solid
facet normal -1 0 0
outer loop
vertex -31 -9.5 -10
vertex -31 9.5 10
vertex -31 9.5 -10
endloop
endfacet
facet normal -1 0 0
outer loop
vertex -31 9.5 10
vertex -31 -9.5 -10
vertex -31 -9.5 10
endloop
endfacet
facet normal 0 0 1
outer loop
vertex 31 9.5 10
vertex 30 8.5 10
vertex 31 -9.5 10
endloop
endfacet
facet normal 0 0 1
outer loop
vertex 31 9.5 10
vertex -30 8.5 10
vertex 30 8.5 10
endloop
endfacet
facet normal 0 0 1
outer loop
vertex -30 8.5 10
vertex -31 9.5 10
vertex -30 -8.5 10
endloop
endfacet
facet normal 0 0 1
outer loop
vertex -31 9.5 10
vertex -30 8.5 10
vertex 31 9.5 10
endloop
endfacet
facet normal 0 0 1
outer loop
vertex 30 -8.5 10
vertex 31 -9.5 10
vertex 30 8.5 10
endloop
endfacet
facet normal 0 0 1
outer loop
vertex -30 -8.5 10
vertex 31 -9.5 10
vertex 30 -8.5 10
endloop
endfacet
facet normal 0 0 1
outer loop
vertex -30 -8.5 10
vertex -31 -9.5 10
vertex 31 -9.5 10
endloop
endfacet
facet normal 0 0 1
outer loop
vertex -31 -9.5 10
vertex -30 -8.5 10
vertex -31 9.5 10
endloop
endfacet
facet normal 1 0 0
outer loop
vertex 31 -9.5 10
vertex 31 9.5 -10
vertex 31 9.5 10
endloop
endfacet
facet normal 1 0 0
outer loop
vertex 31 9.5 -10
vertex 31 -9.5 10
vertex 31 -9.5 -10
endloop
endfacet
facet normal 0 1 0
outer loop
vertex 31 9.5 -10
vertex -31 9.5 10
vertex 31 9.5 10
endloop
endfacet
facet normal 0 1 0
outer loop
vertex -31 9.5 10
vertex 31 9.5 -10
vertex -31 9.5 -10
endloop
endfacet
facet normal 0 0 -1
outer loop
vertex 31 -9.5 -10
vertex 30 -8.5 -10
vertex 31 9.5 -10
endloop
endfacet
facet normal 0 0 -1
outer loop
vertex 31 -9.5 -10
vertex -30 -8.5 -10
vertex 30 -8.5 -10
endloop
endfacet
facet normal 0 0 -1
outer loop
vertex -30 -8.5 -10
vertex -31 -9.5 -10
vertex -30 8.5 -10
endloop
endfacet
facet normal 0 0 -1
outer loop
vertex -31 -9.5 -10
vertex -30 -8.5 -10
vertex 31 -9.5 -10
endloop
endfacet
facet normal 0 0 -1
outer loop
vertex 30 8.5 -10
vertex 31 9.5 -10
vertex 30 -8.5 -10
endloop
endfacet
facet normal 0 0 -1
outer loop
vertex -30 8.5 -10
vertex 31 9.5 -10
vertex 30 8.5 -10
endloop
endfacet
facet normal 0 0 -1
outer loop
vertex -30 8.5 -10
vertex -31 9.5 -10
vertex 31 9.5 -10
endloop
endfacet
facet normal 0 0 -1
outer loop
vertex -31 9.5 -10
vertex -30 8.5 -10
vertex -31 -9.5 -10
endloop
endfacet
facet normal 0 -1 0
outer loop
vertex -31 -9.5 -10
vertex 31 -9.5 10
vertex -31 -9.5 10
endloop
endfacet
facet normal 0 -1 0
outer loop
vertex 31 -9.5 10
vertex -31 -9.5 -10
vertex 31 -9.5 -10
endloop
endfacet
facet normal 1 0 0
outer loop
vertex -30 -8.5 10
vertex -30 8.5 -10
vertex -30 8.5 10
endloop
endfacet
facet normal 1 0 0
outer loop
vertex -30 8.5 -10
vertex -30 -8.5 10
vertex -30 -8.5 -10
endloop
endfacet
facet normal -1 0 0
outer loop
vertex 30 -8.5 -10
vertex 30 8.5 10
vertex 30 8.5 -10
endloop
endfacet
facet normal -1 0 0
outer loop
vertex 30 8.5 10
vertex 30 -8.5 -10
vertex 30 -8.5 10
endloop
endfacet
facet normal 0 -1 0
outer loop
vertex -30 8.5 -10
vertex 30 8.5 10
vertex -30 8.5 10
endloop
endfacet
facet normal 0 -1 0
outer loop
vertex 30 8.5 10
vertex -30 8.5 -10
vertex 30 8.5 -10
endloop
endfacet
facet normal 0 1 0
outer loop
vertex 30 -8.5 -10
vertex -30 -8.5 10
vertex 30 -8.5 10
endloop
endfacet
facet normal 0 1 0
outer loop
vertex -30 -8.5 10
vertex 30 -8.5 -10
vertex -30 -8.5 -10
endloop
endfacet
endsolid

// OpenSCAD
t=1;

difference() {
    cube([60+2*t, 17+2*t, 20], center=true);
    cube([60, 17, 20+2*t], center=true);
}
